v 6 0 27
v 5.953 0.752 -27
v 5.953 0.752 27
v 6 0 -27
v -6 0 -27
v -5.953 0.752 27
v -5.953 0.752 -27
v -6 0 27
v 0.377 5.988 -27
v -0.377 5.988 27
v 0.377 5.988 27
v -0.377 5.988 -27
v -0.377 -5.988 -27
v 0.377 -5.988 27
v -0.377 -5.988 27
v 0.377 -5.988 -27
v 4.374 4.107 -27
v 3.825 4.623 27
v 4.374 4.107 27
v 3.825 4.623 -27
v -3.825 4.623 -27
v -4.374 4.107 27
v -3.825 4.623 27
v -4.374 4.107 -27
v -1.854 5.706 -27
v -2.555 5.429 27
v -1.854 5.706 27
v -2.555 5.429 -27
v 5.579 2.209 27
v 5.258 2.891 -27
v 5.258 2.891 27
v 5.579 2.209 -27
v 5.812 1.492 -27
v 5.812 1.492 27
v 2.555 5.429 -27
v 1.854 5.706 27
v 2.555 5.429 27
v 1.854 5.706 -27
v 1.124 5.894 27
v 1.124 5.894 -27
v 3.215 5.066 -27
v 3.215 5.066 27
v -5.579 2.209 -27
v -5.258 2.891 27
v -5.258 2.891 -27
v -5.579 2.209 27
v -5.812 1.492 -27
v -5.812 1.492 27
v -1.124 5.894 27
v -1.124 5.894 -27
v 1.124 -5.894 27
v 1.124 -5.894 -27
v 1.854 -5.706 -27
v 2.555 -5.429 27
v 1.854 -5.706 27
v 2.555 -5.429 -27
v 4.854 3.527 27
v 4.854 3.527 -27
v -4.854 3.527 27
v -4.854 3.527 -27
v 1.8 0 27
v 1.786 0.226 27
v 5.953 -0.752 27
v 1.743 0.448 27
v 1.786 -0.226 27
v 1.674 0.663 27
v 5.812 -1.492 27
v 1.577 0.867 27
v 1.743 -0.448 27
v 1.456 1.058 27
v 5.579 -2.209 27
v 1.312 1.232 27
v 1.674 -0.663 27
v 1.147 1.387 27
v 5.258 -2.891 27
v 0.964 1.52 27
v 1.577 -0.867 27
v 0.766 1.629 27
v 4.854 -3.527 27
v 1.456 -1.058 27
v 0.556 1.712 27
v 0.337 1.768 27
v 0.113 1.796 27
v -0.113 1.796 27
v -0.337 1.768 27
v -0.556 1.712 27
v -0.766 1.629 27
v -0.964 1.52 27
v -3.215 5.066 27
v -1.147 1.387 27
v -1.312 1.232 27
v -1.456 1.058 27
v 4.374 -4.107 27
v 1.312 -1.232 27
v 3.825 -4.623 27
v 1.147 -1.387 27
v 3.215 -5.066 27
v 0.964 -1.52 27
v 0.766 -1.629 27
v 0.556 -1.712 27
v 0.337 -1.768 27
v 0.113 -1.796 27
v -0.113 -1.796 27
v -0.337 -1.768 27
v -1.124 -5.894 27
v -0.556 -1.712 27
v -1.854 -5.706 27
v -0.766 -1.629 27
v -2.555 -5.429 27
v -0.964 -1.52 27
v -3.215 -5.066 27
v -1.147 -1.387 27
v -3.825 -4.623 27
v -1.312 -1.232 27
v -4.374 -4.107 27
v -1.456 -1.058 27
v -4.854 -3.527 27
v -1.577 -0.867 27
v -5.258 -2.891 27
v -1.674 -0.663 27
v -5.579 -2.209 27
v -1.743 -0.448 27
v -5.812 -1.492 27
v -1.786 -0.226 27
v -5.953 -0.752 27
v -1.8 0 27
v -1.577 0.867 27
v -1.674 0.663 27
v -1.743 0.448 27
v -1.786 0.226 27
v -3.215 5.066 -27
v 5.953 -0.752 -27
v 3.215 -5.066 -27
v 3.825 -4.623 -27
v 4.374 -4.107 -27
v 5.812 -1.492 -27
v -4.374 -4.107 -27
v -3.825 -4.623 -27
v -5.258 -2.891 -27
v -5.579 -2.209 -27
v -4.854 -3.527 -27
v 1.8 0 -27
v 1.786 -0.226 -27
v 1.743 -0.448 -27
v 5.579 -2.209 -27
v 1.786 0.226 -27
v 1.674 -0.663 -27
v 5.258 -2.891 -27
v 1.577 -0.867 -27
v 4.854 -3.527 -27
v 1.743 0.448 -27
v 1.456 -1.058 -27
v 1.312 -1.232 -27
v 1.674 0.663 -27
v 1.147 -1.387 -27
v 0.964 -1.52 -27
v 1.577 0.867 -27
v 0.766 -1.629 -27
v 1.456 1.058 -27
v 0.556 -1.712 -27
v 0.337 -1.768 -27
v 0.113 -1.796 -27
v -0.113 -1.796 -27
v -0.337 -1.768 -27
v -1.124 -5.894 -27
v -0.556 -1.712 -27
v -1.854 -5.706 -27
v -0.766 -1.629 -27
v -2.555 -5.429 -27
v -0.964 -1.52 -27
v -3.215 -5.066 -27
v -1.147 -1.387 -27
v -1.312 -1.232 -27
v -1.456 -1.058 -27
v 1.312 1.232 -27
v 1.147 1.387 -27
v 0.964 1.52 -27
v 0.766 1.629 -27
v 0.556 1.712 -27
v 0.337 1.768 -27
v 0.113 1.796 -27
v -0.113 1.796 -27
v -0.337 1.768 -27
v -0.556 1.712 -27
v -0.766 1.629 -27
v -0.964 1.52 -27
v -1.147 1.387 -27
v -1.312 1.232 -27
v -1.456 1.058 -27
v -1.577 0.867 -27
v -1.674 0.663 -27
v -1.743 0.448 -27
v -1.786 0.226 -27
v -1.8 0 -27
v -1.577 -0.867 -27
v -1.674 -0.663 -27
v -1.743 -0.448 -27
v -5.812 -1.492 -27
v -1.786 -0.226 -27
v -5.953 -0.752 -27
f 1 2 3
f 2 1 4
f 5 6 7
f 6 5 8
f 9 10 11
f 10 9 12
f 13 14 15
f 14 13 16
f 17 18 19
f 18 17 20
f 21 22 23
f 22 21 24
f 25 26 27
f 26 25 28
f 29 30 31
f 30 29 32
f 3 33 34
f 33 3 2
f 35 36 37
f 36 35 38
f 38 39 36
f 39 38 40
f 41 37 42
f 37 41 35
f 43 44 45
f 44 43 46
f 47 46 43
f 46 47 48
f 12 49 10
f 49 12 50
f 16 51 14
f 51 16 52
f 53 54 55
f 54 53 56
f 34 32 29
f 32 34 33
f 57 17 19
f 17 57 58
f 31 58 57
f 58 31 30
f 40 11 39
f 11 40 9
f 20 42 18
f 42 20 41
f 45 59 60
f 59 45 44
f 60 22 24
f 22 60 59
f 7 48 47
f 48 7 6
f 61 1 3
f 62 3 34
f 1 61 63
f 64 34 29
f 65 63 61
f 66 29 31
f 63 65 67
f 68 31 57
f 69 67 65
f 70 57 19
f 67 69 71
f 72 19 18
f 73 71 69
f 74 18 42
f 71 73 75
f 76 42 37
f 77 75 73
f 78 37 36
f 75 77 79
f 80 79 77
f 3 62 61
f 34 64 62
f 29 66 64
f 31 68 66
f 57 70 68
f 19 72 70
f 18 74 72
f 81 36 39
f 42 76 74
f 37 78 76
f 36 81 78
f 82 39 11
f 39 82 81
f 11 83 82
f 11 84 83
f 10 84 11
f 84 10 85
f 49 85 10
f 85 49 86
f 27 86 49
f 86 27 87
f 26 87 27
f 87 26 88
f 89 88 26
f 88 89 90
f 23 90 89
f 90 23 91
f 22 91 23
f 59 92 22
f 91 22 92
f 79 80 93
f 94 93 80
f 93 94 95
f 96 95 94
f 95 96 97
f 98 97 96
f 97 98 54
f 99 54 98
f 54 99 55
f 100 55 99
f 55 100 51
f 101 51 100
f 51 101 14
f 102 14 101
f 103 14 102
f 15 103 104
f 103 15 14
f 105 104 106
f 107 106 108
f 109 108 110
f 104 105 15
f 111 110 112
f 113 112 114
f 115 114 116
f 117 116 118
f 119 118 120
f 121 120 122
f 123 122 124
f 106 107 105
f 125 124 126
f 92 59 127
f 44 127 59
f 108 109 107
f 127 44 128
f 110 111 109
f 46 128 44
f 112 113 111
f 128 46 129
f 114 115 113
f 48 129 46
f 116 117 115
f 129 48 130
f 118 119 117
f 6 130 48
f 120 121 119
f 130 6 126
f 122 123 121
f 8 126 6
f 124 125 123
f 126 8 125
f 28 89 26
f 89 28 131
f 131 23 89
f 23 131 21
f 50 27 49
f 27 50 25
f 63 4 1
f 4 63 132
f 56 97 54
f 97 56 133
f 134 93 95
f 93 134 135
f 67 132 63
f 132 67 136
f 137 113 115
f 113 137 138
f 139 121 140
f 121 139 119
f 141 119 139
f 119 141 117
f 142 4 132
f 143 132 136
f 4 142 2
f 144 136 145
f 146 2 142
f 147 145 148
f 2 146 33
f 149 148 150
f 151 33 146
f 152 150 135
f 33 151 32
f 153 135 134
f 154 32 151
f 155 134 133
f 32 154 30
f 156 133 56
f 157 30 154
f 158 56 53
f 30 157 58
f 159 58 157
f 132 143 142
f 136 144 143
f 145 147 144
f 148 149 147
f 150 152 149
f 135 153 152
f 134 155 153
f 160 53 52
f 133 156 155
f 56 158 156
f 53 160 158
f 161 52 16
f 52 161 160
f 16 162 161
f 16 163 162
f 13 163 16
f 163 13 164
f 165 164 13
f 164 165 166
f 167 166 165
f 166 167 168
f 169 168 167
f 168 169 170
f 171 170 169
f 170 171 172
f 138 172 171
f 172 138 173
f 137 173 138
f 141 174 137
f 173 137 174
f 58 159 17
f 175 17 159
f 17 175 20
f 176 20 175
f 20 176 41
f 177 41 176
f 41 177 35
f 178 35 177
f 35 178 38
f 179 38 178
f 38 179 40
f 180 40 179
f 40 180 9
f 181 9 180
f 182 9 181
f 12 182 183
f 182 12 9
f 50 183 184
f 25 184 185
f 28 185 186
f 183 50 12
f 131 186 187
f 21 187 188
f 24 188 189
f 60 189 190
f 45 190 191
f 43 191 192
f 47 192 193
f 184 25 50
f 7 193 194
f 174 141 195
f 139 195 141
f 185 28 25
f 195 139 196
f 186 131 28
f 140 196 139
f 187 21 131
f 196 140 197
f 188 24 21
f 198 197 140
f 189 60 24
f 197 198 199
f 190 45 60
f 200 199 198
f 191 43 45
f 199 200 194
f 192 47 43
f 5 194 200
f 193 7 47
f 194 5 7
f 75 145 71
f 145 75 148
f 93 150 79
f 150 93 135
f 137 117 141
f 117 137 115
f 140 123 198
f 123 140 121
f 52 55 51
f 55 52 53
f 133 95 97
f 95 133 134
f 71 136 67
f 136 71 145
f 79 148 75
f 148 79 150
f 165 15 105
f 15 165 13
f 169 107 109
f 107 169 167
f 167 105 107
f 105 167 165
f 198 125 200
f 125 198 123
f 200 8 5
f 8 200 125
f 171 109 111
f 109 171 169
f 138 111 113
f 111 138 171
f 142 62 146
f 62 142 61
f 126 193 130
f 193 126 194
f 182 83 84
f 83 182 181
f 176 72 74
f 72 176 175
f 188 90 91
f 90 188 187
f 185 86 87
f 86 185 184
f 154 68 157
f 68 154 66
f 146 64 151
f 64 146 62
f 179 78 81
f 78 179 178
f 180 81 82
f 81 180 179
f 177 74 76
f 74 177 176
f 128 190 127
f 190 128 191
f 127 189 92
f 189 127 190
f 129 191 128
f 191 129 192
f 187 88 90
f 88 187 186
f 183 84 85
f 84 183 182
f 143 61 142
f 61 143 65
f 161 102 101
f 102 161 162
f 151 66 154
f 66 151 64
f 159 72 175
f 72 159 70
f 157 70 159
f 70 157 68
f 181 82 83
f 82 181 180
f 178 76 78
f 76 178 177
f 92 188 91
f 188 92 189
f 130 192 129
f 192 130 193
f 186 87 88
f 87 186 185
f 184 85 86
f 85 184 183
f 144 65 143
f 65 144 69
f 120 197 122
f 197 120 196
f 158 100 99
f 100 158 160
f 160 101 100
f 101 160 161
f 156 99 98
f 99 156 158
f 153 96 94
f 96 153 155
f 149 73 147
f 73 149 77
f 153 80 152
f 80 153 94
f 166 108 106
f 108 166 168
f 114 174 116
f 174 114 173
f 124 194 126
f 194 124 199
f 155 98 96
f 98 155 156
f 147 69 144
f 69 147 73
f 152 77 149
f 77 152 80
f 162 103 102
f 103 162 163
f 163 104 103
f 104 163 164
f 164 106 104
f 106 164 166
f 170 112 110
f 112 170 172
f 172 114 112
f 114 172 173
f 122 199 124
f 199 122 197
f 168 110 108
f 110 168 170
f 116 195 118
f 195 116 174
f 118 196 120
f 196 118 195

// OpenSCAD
$fn = 50;


difference() {
	union() {
		translate(v = [0, 0, -27.0000000000]) {
			cylinder(h = 54, r = 6.0000000000);
		}
	}
	union() {
		translate(v = [0, 0, -100.0000000000]) {
			cylinder(h = 200, r = 1.8000000000);
		}
	}
}
